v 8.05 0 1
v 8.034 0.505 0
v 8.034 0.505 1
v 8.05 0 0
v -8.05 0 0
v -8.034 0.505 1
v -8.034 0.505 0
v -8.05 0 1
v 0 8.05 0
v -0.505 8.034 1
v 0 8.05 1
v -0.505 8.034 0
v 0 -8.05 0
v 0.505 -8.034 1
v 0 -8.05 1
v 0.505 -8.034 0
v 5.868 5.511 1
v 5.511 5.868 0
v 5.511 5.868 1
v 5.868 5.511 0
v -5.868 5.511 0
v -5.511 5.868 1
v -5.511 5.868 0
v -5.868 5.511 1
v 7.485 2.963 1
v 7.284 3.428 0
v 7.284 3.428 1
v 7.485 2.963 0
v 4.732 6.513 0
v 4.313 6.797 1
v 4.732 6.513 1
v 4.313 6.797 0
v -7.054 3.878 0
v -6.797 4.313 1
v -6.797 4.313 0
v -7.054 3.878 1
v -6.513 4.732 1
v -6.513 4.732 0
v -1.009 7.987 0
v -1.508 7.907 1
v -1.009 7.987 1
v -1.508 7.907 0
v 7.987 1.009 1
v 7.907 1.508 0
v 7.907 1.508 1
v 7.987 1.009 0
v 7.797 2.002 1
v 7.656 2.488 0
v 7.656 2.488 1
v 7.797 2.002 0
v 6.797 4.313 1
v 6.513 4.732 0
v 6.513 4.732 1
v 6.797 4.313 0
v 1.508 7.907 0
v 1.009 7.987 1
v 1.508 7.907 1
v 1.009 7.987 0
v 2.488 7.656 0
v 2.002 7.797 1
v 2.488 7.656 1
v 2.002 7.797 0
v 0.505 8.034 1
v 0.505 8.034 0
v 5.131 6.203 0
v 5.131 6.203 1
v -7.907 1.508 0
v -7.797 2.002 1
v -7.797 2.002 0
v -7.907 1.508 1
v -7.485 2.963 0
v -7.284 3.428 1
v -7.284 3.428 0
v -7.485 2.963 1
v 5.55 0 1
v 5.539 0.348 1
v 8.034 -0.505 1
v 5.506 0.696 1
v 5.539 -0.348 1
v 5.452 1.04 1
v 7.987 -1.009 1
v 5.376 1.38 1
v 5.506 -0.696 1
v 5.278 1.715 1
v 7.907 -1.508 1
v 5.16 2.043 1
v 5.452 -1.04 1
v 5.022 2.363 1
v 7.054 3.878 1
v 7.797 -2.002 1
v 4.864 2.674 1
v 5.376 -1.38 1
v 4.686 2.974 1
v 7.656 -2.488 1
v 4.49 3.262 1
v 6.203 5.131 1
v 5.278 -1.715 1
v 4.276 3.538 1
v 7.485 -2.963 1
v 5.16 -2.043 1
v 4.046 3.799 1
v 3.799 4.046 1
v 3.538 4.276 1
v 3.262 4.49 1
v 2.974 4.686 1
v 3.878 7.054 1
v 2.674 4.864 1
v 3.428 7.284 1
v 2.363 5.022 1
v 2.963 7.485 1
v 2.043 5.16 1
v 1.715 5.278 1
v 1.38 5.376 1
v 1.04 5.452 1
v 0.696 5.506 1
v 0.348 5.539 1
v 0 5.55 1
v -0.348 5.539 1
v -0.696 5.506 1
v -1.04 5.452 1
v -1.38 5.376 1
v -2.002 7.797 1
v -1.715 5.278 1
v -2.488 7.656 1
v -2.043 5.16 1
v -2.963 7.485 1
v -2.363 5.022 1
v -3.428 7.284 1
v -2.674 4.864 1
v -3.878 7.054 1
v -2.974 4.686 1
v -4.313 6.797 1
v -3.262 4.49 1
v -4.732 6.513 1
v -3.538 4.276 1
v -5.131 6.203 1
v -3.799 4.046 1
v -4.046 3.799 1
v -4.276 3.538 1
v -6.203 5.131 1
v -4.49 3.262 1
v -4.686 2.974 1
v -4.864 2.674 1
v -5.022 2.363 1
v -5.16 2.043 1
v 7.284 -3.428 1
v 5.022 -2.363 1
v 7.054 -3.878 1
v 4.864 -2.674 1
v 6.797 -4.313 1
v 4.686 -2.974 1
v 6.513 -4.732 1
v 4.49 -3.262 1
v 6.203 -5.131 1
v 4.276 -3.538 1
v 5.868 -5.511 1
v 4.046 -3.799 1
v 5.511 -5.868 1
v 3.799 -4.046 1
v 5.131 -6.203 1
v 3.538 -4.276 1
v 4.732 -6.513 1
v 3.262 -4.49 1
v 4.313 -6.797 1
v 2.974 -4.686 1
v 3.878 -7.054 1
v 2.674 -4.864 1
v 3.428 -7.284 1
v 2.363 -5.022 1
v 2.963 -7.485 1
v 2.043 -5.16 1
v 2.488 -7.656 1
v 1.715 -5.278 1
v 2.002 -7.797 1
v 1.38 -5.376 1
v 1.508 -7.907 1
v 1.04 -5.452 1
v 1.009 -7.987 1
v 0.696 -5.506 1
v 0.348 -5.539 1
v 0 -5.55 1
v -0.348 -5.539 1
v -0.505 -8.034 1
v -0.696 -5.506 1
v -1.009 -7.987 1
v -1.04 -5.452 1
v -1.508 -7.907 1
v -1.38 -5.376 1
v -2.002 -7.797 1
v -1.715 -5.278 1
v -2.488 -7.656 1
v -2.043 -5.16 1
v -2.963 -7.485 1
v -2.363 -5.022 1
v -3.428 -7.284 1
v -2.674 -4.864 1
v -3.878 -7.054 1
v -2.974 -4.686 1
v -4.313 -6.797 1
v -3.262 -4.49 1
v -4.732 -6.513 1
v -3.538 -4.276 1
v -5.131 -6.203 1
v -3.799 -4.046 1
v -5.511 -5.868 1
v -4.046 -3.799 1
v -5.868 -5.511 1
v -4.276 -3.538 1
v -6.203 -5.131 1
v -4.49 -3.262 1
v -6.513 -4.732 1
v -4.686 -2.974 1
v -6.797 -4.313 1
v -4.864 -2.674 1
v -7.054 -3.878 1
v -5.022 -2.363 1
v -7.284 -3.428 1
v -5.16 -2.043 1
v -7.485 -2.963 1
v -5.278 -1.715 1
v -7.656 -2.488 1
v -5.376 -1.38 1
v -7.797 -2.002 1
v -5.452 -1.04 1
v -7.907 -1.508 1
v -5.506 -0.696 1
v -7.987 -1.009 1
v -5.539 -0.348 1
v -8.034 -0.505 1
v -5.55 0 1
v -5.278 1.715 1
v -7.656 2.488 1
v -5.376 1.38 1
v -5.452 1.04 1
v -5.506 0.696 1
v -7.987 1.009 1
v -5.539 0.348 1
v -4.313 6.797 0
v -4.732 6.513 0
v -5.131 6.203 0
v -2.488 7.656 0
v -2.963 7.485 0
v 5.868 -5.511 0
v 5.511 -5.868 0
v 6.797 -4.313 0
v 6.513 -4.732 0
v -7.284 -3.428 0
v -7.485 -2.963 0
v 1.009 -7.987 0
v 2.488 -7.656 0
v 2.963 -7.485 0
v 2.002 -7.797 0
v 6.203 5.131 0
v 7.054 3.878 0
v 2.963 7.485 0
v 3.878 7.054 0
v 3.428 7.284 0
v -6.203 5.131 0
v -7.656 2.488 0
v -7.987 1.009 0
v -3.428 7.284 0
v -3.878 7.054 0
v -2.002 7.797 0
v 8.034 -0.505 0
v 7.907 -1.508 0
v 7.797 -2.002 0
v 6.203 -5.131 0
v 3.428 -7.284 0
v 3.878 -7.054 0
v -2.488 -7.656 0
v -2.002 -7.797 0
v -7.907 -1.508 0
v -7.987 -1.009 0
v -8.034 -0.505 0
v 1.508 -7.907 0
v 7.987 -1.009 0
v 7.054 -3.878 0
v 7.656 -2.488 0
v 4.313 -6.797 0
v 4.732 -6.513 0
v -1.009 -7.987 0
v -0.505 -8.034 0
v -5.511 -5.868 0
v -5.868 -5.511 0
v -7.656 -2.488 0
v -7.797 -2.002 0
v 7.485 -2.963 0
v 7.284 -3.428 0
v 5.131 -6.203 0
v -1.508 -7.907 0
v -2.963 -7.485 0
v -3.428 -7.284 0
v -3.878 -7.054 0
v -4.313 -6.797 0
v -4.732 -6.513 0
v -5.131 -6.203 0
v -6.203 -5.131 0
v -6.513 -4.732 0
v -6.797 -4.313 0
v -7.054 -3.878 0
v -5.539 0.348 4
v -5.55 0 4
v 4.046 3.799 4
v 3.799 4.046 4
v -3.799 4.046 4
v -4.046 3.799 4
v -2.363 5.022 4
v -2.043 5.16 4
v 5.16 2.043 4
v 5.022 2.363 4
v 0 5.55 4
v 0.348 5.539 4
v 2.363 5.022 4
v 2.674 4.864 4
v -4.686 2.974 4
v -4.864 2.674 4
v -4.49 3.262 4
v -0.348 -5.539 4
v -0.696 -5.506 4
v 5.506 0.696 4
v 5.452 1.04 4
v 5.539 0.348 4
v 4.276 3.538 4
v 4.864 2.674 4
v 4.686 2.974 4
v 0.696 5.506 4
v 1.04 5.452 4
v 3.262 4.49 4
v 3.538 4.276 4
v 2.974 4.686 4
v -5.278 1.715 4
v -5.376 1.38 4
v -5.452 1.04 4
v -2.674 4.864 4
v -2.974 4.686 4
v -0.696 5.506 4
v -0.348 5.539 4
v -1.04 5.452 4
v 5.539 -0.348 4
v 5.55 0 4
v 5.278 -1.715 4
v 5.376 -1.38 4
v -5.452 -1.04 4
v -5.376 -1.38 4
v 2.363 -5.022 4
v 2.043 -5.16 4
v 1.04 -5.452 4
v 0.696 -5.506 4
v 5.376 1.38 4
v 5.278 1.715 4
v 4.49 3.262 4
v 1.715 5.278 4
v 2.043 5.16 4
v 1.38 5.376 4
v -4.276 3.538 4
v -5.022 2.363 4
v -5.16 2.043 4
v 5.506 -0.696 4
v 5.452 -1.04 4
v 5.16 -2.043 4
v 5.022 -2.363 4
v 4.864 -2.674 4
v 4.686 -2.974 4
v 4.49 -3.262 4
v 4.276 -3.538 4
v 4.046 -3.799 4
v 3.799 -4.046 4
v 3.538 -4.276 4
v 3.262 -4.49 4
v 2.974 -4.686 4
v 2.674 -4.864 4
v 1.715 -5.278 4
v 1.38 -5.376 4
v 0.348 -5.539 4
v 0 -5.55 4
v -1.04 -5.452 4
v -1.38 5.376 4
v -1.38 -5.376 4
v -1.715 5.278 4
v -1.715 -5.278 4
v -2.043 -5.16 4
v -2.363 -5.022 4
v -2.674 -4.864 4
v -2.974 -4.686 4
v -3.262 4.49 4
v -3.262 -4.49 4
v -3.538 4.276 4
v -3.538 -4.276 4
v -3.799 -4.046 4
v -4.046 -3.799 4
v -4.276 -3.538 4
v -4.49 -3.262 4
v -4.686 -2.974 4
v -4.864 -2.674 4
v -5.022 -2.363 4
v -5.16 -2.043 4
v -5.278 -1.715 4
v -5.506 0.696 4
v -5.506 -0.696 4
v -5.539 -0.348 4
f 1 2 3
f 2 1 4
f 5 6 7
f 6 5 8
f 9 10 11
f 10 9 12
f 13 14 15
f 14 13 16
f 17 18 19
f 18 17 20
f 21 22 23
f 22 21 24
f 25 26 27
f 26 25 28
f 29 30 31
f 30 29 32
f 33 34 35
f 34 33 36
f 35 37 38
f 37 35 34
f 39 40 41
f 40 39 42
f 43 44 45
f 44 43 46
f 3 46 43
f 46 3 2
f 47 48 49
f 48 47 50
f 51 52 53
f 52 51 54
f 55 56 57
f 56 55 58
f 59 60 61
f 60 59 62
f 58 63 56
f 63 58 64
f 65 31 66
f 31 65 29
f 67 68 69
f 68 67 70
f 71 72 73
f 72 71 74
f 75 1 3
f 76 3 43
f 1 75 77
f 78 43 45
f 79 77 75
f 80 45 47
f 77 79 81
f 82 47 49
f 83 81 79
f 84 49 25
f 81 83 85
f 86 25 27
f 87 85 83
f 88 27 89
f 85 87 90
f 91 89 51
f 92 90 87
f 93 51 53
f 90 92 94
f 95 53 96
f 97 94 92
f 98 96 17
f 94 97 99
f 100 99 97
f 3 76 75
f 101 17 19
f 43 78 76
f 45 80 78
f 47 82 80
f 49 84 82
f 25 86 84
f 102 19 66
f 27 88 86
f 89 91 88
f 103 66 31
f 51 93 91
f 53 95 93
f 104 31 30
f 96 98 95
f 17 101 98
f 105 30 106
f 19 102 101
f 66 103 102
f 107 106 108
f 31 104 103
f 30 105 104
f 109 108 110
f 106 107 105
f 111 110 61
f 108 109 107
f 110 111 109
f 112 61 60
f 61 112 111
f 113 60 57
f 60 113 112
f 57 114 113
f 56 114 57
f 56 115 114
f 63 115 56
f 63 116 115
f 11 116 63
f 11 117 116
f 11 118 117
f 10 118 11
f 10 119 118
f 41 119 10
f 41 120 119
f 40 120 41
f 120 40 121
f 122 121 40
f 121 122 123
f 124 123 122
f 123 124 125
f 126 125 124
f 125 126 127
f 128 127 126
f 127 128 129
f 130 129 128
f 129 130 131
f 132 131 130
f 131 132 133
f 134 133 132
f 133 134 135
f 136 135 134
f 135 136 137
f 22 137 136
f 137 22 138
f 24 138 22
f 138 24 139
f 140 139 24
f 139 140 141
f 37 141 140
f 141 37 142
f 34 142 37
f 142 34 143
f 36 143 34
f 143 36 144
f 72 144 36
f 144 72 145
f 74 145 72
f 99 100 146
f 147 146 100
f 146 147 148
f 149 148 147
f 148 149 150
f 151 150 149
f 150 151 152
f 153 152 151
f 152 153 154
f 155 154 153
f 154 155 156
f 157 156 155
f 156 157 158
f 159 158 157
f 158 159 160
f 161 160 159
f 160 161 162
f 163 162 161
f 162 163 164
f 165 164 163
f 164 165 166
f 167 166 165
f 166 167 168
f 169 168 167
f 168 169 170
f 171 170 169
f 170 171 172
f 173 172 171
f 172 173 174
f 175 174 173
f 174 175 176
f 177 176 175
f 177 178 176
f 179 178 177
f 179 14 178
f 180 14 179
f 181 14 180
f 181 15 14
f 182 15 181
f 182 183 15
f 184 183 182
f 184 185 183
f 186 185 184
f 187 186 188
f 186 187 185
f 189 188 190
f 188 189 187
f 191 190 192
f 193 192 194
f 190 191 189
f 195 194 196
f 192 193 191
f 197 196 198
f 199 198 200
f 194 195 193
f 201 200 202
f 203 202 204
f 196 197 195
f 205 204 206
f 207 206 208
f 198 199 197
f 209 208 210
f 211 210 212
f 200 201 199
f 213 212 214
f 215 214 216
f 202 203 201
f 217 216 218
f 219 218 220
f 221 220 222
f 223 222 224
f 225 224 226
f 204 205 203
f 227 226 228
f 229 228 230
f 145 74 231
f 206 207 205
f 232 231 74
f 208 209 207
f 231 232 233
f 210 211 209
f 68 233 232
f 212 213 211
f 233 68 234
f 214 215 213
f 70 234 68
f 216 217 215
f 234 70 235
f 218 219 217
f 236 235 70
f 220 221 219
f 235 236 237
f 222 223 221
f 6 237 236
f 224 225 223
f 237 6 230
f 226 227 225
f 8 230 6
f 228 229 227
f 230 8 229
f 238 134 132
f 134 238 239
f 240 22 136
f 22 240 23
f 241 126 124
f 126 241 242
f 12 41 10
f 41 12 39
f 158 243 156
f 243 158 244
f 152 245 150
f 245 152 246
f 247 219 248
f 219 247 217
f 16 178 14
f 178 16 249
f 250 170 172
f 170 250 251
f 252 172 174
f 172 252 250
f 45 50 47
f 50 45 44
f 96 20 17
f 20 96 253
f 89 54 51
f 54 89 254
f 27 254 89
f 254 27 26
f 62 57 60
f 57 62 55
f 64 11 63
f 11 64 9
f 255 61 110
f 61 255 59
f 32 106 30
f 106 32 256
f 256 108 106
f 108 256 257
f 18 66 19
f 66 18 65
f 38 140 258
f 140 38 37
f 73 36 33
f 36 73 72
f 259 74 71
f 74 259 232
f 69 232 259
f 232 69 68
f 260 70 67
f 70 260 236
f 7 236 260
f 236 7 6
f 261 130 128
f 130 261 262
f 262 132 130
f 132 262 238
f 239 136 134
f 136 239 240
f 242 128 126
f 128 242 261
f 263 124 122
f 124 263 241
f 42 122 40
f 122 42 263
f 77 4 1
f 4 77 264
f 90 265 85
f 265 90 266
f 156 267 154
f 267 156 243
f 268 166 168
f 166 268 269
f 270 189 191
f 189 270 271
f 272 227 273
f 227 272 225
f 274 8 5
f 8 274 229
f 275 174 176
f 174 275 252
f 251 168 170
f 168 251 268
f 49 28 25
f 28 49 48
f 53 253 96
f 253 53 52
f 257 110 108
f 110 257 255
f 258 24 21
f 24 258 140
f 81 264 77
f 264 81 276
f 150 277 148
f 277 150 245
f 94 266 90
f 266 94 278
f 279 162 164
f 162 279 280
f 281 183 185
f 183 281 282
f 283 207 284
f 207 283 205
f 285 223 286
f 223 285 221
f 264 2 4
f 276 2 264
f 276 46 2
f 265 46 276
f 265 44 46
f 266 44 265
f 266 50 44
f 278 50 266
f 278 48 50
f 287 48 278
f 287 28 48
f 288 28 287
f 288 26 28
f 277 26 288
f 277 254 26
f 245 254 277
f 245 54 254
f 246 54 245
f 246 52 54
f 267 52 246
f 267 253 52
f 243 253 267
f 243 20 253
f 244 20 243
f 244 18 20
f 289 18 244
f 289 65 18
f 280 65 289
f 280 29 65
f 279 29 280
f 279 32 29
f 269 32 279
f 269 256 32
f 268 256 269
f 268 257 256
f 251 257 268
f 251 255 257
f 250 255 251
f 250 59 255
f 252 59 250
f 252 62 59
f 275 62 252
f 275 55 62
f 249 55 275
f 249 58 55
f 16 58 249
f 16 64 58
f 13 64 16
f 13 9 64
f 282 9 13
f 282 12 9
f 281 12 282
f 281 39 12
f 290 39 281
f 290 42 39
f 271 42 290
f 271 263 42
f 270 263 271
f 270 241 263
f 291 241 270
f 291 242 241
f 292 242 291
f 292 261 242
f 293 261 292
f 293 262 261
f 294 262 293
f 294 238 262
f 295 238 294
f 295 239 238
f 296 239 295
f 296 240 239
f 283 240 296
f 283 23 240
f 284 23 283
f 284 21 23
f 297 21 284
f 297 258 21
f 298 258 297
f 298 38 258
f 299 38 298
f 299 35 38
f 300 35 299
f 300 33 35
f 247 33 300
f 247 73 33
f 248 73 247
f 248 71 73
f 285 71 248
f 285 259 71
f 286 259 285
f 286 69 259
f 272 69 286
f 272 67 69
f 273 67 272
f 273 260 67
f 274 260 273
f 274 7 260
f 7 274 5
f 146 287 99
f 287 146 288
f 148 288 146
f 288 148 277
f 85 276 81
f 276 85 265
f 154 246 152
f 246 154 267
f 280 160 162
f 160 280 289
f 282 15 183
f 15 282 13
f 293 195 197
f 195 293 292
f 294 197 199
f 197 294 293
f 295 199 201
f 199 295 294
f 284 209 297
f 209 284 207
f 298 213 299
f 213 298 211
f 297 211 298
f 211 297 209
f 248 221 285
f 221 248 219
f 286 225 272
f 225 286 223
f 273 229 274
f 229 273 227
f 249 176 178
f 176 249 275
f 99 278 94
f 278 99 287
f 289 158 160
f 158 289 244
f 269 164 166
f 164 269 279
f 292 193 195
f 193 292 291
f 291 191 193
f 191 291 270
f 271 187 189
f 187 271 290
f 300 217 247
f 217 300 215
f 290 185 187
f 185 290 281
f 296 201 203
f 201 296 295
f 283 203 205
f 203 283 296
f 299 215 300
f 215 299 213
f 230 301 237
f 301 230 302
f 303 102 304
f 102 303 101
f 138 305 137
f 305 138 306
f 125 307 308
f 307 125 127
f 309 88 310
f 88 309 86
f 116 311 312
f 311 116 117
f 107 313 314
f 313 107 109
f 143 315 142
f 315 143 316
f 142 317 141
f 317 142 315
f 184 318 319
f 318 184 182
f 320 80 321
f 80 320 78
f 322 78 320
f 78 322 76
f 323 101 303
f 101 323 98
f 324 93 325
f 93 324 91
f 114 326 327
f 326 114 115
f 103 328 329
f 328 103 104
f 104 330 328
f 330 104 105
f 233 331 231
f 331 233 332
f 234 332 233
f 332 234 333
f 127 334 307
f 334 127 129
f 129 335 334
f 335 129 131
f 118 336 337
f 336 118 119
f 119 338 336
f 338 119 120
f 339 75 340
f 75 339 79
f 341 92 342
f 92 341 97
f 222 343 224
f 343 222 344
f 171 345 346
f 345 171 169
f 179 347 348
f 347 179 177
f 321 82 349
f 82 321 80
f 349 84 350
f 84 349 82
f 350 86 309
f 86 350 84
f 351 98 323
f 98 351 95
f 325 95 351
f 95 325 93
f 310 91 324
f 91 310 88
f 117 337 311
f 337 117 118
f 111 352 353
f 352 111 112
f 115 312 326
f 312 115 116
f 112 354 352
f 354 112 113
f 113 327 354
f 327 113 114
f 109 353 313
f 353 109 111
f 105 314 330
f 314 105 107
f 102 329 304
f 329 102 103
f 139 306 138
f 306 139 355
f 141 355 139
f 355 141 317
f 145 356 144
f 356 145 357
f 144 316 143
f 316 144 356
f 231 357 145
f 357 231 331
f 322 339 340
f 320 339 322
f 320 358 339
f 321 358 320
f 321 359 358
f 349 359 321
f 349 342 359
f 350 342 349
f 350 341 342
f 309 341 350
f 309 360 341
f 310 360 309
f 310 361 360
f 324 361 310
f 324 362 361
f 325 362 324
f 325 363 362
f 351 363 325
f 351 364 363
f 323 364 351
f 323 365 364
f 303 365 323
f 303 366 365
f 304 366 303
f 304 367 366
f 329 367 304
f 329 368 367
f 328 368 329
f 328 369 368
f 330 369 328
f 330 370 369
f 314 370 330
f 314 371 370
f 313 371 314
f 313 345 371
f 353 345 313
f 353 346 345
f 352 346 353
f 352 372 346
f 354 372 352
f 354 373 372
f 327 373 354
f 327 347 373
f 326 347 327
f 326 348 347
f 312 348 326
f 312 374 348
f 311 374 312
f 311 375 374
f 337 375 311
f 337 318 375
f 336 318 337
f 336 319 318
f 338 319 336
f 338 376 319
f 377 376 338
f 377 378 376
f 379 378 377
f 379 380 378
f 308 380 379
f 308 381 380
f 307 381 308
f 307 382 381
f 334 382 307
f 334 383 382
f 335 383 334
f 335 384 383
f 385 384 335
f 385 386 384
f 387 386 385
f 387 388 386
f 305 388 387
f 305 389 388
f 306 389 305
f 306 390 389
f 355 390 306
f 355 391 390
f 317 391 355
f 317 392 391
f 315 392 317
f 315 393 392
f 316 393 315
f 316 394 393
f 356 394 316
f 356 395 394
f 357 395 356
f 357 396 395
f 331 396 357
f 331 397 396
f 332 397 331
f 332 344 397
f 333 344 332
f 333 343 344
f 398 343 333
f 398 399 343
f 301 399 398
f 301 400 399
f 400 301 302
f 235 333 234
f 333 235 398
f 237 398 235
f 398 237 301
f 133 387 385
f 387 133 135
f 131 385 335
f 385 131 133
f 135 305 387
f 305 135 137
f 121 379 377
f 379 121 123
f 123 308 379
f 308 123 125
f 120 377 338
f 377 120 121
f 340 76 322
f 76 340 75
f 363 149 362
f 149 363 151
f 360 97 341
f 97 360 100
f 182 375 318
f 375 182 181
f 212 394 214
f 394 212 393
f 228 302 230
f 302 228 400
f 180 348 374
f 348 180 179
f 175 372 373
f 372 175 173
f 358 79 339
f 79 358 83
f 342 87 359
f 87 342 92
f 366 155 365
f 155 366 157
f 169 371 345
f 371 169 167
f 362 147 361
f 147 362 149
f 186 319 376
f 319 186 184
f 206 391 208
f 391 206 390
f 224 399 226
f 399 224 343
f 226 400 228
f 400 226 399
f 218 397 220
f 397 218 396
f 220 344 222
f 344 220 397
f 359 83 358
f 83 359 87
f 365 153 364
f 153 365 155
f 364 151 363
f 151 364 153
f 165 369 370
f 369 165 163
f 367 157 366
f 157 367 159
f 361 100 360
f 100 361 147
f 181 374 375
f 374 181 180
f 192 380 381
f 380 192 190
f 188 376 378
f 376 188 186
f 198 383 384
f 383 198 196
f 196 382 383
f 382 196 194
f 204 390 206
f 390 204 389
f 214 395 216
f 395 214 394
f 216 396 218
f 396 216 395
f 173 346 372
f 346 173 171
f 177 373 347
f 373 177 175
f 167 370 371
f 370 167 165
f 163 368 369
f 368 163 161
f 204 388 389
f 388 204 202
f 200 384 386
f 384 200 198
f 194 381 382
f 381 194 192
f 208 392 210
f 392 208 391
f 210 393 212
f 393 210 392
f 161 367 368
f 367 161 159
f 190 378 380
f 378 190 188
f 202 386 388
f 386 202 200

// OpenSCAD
$fn = 100;

hole_diameter = 11.1;
wall_thickness = 3;
rim = 2.5;
rim_thickness = 1;

cylinder(h=rim_thickness, d=hole_diameter+2*rim);
translate([0,0, rim_thickness])
    cylinder(h=wall_thickness, d=hole_diameter);    
